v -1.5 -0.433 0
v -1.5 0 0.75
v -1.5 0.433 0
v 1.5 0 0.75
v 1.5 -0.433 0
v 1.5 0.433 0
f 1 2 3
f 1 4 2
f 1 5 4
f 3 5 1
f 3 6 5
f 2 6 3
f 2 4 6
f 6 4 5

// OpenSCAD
//Triangular Prism (Equilateral) for Stacks of Shapes
//by Slashee the Cow

color("Turquoise")
translate([-1.5,0,0.25])
rotate([180,0,0])
rotate([0,90,0])
linear_extrude(3, false)
circle(d  = 1, $fn = 3);
